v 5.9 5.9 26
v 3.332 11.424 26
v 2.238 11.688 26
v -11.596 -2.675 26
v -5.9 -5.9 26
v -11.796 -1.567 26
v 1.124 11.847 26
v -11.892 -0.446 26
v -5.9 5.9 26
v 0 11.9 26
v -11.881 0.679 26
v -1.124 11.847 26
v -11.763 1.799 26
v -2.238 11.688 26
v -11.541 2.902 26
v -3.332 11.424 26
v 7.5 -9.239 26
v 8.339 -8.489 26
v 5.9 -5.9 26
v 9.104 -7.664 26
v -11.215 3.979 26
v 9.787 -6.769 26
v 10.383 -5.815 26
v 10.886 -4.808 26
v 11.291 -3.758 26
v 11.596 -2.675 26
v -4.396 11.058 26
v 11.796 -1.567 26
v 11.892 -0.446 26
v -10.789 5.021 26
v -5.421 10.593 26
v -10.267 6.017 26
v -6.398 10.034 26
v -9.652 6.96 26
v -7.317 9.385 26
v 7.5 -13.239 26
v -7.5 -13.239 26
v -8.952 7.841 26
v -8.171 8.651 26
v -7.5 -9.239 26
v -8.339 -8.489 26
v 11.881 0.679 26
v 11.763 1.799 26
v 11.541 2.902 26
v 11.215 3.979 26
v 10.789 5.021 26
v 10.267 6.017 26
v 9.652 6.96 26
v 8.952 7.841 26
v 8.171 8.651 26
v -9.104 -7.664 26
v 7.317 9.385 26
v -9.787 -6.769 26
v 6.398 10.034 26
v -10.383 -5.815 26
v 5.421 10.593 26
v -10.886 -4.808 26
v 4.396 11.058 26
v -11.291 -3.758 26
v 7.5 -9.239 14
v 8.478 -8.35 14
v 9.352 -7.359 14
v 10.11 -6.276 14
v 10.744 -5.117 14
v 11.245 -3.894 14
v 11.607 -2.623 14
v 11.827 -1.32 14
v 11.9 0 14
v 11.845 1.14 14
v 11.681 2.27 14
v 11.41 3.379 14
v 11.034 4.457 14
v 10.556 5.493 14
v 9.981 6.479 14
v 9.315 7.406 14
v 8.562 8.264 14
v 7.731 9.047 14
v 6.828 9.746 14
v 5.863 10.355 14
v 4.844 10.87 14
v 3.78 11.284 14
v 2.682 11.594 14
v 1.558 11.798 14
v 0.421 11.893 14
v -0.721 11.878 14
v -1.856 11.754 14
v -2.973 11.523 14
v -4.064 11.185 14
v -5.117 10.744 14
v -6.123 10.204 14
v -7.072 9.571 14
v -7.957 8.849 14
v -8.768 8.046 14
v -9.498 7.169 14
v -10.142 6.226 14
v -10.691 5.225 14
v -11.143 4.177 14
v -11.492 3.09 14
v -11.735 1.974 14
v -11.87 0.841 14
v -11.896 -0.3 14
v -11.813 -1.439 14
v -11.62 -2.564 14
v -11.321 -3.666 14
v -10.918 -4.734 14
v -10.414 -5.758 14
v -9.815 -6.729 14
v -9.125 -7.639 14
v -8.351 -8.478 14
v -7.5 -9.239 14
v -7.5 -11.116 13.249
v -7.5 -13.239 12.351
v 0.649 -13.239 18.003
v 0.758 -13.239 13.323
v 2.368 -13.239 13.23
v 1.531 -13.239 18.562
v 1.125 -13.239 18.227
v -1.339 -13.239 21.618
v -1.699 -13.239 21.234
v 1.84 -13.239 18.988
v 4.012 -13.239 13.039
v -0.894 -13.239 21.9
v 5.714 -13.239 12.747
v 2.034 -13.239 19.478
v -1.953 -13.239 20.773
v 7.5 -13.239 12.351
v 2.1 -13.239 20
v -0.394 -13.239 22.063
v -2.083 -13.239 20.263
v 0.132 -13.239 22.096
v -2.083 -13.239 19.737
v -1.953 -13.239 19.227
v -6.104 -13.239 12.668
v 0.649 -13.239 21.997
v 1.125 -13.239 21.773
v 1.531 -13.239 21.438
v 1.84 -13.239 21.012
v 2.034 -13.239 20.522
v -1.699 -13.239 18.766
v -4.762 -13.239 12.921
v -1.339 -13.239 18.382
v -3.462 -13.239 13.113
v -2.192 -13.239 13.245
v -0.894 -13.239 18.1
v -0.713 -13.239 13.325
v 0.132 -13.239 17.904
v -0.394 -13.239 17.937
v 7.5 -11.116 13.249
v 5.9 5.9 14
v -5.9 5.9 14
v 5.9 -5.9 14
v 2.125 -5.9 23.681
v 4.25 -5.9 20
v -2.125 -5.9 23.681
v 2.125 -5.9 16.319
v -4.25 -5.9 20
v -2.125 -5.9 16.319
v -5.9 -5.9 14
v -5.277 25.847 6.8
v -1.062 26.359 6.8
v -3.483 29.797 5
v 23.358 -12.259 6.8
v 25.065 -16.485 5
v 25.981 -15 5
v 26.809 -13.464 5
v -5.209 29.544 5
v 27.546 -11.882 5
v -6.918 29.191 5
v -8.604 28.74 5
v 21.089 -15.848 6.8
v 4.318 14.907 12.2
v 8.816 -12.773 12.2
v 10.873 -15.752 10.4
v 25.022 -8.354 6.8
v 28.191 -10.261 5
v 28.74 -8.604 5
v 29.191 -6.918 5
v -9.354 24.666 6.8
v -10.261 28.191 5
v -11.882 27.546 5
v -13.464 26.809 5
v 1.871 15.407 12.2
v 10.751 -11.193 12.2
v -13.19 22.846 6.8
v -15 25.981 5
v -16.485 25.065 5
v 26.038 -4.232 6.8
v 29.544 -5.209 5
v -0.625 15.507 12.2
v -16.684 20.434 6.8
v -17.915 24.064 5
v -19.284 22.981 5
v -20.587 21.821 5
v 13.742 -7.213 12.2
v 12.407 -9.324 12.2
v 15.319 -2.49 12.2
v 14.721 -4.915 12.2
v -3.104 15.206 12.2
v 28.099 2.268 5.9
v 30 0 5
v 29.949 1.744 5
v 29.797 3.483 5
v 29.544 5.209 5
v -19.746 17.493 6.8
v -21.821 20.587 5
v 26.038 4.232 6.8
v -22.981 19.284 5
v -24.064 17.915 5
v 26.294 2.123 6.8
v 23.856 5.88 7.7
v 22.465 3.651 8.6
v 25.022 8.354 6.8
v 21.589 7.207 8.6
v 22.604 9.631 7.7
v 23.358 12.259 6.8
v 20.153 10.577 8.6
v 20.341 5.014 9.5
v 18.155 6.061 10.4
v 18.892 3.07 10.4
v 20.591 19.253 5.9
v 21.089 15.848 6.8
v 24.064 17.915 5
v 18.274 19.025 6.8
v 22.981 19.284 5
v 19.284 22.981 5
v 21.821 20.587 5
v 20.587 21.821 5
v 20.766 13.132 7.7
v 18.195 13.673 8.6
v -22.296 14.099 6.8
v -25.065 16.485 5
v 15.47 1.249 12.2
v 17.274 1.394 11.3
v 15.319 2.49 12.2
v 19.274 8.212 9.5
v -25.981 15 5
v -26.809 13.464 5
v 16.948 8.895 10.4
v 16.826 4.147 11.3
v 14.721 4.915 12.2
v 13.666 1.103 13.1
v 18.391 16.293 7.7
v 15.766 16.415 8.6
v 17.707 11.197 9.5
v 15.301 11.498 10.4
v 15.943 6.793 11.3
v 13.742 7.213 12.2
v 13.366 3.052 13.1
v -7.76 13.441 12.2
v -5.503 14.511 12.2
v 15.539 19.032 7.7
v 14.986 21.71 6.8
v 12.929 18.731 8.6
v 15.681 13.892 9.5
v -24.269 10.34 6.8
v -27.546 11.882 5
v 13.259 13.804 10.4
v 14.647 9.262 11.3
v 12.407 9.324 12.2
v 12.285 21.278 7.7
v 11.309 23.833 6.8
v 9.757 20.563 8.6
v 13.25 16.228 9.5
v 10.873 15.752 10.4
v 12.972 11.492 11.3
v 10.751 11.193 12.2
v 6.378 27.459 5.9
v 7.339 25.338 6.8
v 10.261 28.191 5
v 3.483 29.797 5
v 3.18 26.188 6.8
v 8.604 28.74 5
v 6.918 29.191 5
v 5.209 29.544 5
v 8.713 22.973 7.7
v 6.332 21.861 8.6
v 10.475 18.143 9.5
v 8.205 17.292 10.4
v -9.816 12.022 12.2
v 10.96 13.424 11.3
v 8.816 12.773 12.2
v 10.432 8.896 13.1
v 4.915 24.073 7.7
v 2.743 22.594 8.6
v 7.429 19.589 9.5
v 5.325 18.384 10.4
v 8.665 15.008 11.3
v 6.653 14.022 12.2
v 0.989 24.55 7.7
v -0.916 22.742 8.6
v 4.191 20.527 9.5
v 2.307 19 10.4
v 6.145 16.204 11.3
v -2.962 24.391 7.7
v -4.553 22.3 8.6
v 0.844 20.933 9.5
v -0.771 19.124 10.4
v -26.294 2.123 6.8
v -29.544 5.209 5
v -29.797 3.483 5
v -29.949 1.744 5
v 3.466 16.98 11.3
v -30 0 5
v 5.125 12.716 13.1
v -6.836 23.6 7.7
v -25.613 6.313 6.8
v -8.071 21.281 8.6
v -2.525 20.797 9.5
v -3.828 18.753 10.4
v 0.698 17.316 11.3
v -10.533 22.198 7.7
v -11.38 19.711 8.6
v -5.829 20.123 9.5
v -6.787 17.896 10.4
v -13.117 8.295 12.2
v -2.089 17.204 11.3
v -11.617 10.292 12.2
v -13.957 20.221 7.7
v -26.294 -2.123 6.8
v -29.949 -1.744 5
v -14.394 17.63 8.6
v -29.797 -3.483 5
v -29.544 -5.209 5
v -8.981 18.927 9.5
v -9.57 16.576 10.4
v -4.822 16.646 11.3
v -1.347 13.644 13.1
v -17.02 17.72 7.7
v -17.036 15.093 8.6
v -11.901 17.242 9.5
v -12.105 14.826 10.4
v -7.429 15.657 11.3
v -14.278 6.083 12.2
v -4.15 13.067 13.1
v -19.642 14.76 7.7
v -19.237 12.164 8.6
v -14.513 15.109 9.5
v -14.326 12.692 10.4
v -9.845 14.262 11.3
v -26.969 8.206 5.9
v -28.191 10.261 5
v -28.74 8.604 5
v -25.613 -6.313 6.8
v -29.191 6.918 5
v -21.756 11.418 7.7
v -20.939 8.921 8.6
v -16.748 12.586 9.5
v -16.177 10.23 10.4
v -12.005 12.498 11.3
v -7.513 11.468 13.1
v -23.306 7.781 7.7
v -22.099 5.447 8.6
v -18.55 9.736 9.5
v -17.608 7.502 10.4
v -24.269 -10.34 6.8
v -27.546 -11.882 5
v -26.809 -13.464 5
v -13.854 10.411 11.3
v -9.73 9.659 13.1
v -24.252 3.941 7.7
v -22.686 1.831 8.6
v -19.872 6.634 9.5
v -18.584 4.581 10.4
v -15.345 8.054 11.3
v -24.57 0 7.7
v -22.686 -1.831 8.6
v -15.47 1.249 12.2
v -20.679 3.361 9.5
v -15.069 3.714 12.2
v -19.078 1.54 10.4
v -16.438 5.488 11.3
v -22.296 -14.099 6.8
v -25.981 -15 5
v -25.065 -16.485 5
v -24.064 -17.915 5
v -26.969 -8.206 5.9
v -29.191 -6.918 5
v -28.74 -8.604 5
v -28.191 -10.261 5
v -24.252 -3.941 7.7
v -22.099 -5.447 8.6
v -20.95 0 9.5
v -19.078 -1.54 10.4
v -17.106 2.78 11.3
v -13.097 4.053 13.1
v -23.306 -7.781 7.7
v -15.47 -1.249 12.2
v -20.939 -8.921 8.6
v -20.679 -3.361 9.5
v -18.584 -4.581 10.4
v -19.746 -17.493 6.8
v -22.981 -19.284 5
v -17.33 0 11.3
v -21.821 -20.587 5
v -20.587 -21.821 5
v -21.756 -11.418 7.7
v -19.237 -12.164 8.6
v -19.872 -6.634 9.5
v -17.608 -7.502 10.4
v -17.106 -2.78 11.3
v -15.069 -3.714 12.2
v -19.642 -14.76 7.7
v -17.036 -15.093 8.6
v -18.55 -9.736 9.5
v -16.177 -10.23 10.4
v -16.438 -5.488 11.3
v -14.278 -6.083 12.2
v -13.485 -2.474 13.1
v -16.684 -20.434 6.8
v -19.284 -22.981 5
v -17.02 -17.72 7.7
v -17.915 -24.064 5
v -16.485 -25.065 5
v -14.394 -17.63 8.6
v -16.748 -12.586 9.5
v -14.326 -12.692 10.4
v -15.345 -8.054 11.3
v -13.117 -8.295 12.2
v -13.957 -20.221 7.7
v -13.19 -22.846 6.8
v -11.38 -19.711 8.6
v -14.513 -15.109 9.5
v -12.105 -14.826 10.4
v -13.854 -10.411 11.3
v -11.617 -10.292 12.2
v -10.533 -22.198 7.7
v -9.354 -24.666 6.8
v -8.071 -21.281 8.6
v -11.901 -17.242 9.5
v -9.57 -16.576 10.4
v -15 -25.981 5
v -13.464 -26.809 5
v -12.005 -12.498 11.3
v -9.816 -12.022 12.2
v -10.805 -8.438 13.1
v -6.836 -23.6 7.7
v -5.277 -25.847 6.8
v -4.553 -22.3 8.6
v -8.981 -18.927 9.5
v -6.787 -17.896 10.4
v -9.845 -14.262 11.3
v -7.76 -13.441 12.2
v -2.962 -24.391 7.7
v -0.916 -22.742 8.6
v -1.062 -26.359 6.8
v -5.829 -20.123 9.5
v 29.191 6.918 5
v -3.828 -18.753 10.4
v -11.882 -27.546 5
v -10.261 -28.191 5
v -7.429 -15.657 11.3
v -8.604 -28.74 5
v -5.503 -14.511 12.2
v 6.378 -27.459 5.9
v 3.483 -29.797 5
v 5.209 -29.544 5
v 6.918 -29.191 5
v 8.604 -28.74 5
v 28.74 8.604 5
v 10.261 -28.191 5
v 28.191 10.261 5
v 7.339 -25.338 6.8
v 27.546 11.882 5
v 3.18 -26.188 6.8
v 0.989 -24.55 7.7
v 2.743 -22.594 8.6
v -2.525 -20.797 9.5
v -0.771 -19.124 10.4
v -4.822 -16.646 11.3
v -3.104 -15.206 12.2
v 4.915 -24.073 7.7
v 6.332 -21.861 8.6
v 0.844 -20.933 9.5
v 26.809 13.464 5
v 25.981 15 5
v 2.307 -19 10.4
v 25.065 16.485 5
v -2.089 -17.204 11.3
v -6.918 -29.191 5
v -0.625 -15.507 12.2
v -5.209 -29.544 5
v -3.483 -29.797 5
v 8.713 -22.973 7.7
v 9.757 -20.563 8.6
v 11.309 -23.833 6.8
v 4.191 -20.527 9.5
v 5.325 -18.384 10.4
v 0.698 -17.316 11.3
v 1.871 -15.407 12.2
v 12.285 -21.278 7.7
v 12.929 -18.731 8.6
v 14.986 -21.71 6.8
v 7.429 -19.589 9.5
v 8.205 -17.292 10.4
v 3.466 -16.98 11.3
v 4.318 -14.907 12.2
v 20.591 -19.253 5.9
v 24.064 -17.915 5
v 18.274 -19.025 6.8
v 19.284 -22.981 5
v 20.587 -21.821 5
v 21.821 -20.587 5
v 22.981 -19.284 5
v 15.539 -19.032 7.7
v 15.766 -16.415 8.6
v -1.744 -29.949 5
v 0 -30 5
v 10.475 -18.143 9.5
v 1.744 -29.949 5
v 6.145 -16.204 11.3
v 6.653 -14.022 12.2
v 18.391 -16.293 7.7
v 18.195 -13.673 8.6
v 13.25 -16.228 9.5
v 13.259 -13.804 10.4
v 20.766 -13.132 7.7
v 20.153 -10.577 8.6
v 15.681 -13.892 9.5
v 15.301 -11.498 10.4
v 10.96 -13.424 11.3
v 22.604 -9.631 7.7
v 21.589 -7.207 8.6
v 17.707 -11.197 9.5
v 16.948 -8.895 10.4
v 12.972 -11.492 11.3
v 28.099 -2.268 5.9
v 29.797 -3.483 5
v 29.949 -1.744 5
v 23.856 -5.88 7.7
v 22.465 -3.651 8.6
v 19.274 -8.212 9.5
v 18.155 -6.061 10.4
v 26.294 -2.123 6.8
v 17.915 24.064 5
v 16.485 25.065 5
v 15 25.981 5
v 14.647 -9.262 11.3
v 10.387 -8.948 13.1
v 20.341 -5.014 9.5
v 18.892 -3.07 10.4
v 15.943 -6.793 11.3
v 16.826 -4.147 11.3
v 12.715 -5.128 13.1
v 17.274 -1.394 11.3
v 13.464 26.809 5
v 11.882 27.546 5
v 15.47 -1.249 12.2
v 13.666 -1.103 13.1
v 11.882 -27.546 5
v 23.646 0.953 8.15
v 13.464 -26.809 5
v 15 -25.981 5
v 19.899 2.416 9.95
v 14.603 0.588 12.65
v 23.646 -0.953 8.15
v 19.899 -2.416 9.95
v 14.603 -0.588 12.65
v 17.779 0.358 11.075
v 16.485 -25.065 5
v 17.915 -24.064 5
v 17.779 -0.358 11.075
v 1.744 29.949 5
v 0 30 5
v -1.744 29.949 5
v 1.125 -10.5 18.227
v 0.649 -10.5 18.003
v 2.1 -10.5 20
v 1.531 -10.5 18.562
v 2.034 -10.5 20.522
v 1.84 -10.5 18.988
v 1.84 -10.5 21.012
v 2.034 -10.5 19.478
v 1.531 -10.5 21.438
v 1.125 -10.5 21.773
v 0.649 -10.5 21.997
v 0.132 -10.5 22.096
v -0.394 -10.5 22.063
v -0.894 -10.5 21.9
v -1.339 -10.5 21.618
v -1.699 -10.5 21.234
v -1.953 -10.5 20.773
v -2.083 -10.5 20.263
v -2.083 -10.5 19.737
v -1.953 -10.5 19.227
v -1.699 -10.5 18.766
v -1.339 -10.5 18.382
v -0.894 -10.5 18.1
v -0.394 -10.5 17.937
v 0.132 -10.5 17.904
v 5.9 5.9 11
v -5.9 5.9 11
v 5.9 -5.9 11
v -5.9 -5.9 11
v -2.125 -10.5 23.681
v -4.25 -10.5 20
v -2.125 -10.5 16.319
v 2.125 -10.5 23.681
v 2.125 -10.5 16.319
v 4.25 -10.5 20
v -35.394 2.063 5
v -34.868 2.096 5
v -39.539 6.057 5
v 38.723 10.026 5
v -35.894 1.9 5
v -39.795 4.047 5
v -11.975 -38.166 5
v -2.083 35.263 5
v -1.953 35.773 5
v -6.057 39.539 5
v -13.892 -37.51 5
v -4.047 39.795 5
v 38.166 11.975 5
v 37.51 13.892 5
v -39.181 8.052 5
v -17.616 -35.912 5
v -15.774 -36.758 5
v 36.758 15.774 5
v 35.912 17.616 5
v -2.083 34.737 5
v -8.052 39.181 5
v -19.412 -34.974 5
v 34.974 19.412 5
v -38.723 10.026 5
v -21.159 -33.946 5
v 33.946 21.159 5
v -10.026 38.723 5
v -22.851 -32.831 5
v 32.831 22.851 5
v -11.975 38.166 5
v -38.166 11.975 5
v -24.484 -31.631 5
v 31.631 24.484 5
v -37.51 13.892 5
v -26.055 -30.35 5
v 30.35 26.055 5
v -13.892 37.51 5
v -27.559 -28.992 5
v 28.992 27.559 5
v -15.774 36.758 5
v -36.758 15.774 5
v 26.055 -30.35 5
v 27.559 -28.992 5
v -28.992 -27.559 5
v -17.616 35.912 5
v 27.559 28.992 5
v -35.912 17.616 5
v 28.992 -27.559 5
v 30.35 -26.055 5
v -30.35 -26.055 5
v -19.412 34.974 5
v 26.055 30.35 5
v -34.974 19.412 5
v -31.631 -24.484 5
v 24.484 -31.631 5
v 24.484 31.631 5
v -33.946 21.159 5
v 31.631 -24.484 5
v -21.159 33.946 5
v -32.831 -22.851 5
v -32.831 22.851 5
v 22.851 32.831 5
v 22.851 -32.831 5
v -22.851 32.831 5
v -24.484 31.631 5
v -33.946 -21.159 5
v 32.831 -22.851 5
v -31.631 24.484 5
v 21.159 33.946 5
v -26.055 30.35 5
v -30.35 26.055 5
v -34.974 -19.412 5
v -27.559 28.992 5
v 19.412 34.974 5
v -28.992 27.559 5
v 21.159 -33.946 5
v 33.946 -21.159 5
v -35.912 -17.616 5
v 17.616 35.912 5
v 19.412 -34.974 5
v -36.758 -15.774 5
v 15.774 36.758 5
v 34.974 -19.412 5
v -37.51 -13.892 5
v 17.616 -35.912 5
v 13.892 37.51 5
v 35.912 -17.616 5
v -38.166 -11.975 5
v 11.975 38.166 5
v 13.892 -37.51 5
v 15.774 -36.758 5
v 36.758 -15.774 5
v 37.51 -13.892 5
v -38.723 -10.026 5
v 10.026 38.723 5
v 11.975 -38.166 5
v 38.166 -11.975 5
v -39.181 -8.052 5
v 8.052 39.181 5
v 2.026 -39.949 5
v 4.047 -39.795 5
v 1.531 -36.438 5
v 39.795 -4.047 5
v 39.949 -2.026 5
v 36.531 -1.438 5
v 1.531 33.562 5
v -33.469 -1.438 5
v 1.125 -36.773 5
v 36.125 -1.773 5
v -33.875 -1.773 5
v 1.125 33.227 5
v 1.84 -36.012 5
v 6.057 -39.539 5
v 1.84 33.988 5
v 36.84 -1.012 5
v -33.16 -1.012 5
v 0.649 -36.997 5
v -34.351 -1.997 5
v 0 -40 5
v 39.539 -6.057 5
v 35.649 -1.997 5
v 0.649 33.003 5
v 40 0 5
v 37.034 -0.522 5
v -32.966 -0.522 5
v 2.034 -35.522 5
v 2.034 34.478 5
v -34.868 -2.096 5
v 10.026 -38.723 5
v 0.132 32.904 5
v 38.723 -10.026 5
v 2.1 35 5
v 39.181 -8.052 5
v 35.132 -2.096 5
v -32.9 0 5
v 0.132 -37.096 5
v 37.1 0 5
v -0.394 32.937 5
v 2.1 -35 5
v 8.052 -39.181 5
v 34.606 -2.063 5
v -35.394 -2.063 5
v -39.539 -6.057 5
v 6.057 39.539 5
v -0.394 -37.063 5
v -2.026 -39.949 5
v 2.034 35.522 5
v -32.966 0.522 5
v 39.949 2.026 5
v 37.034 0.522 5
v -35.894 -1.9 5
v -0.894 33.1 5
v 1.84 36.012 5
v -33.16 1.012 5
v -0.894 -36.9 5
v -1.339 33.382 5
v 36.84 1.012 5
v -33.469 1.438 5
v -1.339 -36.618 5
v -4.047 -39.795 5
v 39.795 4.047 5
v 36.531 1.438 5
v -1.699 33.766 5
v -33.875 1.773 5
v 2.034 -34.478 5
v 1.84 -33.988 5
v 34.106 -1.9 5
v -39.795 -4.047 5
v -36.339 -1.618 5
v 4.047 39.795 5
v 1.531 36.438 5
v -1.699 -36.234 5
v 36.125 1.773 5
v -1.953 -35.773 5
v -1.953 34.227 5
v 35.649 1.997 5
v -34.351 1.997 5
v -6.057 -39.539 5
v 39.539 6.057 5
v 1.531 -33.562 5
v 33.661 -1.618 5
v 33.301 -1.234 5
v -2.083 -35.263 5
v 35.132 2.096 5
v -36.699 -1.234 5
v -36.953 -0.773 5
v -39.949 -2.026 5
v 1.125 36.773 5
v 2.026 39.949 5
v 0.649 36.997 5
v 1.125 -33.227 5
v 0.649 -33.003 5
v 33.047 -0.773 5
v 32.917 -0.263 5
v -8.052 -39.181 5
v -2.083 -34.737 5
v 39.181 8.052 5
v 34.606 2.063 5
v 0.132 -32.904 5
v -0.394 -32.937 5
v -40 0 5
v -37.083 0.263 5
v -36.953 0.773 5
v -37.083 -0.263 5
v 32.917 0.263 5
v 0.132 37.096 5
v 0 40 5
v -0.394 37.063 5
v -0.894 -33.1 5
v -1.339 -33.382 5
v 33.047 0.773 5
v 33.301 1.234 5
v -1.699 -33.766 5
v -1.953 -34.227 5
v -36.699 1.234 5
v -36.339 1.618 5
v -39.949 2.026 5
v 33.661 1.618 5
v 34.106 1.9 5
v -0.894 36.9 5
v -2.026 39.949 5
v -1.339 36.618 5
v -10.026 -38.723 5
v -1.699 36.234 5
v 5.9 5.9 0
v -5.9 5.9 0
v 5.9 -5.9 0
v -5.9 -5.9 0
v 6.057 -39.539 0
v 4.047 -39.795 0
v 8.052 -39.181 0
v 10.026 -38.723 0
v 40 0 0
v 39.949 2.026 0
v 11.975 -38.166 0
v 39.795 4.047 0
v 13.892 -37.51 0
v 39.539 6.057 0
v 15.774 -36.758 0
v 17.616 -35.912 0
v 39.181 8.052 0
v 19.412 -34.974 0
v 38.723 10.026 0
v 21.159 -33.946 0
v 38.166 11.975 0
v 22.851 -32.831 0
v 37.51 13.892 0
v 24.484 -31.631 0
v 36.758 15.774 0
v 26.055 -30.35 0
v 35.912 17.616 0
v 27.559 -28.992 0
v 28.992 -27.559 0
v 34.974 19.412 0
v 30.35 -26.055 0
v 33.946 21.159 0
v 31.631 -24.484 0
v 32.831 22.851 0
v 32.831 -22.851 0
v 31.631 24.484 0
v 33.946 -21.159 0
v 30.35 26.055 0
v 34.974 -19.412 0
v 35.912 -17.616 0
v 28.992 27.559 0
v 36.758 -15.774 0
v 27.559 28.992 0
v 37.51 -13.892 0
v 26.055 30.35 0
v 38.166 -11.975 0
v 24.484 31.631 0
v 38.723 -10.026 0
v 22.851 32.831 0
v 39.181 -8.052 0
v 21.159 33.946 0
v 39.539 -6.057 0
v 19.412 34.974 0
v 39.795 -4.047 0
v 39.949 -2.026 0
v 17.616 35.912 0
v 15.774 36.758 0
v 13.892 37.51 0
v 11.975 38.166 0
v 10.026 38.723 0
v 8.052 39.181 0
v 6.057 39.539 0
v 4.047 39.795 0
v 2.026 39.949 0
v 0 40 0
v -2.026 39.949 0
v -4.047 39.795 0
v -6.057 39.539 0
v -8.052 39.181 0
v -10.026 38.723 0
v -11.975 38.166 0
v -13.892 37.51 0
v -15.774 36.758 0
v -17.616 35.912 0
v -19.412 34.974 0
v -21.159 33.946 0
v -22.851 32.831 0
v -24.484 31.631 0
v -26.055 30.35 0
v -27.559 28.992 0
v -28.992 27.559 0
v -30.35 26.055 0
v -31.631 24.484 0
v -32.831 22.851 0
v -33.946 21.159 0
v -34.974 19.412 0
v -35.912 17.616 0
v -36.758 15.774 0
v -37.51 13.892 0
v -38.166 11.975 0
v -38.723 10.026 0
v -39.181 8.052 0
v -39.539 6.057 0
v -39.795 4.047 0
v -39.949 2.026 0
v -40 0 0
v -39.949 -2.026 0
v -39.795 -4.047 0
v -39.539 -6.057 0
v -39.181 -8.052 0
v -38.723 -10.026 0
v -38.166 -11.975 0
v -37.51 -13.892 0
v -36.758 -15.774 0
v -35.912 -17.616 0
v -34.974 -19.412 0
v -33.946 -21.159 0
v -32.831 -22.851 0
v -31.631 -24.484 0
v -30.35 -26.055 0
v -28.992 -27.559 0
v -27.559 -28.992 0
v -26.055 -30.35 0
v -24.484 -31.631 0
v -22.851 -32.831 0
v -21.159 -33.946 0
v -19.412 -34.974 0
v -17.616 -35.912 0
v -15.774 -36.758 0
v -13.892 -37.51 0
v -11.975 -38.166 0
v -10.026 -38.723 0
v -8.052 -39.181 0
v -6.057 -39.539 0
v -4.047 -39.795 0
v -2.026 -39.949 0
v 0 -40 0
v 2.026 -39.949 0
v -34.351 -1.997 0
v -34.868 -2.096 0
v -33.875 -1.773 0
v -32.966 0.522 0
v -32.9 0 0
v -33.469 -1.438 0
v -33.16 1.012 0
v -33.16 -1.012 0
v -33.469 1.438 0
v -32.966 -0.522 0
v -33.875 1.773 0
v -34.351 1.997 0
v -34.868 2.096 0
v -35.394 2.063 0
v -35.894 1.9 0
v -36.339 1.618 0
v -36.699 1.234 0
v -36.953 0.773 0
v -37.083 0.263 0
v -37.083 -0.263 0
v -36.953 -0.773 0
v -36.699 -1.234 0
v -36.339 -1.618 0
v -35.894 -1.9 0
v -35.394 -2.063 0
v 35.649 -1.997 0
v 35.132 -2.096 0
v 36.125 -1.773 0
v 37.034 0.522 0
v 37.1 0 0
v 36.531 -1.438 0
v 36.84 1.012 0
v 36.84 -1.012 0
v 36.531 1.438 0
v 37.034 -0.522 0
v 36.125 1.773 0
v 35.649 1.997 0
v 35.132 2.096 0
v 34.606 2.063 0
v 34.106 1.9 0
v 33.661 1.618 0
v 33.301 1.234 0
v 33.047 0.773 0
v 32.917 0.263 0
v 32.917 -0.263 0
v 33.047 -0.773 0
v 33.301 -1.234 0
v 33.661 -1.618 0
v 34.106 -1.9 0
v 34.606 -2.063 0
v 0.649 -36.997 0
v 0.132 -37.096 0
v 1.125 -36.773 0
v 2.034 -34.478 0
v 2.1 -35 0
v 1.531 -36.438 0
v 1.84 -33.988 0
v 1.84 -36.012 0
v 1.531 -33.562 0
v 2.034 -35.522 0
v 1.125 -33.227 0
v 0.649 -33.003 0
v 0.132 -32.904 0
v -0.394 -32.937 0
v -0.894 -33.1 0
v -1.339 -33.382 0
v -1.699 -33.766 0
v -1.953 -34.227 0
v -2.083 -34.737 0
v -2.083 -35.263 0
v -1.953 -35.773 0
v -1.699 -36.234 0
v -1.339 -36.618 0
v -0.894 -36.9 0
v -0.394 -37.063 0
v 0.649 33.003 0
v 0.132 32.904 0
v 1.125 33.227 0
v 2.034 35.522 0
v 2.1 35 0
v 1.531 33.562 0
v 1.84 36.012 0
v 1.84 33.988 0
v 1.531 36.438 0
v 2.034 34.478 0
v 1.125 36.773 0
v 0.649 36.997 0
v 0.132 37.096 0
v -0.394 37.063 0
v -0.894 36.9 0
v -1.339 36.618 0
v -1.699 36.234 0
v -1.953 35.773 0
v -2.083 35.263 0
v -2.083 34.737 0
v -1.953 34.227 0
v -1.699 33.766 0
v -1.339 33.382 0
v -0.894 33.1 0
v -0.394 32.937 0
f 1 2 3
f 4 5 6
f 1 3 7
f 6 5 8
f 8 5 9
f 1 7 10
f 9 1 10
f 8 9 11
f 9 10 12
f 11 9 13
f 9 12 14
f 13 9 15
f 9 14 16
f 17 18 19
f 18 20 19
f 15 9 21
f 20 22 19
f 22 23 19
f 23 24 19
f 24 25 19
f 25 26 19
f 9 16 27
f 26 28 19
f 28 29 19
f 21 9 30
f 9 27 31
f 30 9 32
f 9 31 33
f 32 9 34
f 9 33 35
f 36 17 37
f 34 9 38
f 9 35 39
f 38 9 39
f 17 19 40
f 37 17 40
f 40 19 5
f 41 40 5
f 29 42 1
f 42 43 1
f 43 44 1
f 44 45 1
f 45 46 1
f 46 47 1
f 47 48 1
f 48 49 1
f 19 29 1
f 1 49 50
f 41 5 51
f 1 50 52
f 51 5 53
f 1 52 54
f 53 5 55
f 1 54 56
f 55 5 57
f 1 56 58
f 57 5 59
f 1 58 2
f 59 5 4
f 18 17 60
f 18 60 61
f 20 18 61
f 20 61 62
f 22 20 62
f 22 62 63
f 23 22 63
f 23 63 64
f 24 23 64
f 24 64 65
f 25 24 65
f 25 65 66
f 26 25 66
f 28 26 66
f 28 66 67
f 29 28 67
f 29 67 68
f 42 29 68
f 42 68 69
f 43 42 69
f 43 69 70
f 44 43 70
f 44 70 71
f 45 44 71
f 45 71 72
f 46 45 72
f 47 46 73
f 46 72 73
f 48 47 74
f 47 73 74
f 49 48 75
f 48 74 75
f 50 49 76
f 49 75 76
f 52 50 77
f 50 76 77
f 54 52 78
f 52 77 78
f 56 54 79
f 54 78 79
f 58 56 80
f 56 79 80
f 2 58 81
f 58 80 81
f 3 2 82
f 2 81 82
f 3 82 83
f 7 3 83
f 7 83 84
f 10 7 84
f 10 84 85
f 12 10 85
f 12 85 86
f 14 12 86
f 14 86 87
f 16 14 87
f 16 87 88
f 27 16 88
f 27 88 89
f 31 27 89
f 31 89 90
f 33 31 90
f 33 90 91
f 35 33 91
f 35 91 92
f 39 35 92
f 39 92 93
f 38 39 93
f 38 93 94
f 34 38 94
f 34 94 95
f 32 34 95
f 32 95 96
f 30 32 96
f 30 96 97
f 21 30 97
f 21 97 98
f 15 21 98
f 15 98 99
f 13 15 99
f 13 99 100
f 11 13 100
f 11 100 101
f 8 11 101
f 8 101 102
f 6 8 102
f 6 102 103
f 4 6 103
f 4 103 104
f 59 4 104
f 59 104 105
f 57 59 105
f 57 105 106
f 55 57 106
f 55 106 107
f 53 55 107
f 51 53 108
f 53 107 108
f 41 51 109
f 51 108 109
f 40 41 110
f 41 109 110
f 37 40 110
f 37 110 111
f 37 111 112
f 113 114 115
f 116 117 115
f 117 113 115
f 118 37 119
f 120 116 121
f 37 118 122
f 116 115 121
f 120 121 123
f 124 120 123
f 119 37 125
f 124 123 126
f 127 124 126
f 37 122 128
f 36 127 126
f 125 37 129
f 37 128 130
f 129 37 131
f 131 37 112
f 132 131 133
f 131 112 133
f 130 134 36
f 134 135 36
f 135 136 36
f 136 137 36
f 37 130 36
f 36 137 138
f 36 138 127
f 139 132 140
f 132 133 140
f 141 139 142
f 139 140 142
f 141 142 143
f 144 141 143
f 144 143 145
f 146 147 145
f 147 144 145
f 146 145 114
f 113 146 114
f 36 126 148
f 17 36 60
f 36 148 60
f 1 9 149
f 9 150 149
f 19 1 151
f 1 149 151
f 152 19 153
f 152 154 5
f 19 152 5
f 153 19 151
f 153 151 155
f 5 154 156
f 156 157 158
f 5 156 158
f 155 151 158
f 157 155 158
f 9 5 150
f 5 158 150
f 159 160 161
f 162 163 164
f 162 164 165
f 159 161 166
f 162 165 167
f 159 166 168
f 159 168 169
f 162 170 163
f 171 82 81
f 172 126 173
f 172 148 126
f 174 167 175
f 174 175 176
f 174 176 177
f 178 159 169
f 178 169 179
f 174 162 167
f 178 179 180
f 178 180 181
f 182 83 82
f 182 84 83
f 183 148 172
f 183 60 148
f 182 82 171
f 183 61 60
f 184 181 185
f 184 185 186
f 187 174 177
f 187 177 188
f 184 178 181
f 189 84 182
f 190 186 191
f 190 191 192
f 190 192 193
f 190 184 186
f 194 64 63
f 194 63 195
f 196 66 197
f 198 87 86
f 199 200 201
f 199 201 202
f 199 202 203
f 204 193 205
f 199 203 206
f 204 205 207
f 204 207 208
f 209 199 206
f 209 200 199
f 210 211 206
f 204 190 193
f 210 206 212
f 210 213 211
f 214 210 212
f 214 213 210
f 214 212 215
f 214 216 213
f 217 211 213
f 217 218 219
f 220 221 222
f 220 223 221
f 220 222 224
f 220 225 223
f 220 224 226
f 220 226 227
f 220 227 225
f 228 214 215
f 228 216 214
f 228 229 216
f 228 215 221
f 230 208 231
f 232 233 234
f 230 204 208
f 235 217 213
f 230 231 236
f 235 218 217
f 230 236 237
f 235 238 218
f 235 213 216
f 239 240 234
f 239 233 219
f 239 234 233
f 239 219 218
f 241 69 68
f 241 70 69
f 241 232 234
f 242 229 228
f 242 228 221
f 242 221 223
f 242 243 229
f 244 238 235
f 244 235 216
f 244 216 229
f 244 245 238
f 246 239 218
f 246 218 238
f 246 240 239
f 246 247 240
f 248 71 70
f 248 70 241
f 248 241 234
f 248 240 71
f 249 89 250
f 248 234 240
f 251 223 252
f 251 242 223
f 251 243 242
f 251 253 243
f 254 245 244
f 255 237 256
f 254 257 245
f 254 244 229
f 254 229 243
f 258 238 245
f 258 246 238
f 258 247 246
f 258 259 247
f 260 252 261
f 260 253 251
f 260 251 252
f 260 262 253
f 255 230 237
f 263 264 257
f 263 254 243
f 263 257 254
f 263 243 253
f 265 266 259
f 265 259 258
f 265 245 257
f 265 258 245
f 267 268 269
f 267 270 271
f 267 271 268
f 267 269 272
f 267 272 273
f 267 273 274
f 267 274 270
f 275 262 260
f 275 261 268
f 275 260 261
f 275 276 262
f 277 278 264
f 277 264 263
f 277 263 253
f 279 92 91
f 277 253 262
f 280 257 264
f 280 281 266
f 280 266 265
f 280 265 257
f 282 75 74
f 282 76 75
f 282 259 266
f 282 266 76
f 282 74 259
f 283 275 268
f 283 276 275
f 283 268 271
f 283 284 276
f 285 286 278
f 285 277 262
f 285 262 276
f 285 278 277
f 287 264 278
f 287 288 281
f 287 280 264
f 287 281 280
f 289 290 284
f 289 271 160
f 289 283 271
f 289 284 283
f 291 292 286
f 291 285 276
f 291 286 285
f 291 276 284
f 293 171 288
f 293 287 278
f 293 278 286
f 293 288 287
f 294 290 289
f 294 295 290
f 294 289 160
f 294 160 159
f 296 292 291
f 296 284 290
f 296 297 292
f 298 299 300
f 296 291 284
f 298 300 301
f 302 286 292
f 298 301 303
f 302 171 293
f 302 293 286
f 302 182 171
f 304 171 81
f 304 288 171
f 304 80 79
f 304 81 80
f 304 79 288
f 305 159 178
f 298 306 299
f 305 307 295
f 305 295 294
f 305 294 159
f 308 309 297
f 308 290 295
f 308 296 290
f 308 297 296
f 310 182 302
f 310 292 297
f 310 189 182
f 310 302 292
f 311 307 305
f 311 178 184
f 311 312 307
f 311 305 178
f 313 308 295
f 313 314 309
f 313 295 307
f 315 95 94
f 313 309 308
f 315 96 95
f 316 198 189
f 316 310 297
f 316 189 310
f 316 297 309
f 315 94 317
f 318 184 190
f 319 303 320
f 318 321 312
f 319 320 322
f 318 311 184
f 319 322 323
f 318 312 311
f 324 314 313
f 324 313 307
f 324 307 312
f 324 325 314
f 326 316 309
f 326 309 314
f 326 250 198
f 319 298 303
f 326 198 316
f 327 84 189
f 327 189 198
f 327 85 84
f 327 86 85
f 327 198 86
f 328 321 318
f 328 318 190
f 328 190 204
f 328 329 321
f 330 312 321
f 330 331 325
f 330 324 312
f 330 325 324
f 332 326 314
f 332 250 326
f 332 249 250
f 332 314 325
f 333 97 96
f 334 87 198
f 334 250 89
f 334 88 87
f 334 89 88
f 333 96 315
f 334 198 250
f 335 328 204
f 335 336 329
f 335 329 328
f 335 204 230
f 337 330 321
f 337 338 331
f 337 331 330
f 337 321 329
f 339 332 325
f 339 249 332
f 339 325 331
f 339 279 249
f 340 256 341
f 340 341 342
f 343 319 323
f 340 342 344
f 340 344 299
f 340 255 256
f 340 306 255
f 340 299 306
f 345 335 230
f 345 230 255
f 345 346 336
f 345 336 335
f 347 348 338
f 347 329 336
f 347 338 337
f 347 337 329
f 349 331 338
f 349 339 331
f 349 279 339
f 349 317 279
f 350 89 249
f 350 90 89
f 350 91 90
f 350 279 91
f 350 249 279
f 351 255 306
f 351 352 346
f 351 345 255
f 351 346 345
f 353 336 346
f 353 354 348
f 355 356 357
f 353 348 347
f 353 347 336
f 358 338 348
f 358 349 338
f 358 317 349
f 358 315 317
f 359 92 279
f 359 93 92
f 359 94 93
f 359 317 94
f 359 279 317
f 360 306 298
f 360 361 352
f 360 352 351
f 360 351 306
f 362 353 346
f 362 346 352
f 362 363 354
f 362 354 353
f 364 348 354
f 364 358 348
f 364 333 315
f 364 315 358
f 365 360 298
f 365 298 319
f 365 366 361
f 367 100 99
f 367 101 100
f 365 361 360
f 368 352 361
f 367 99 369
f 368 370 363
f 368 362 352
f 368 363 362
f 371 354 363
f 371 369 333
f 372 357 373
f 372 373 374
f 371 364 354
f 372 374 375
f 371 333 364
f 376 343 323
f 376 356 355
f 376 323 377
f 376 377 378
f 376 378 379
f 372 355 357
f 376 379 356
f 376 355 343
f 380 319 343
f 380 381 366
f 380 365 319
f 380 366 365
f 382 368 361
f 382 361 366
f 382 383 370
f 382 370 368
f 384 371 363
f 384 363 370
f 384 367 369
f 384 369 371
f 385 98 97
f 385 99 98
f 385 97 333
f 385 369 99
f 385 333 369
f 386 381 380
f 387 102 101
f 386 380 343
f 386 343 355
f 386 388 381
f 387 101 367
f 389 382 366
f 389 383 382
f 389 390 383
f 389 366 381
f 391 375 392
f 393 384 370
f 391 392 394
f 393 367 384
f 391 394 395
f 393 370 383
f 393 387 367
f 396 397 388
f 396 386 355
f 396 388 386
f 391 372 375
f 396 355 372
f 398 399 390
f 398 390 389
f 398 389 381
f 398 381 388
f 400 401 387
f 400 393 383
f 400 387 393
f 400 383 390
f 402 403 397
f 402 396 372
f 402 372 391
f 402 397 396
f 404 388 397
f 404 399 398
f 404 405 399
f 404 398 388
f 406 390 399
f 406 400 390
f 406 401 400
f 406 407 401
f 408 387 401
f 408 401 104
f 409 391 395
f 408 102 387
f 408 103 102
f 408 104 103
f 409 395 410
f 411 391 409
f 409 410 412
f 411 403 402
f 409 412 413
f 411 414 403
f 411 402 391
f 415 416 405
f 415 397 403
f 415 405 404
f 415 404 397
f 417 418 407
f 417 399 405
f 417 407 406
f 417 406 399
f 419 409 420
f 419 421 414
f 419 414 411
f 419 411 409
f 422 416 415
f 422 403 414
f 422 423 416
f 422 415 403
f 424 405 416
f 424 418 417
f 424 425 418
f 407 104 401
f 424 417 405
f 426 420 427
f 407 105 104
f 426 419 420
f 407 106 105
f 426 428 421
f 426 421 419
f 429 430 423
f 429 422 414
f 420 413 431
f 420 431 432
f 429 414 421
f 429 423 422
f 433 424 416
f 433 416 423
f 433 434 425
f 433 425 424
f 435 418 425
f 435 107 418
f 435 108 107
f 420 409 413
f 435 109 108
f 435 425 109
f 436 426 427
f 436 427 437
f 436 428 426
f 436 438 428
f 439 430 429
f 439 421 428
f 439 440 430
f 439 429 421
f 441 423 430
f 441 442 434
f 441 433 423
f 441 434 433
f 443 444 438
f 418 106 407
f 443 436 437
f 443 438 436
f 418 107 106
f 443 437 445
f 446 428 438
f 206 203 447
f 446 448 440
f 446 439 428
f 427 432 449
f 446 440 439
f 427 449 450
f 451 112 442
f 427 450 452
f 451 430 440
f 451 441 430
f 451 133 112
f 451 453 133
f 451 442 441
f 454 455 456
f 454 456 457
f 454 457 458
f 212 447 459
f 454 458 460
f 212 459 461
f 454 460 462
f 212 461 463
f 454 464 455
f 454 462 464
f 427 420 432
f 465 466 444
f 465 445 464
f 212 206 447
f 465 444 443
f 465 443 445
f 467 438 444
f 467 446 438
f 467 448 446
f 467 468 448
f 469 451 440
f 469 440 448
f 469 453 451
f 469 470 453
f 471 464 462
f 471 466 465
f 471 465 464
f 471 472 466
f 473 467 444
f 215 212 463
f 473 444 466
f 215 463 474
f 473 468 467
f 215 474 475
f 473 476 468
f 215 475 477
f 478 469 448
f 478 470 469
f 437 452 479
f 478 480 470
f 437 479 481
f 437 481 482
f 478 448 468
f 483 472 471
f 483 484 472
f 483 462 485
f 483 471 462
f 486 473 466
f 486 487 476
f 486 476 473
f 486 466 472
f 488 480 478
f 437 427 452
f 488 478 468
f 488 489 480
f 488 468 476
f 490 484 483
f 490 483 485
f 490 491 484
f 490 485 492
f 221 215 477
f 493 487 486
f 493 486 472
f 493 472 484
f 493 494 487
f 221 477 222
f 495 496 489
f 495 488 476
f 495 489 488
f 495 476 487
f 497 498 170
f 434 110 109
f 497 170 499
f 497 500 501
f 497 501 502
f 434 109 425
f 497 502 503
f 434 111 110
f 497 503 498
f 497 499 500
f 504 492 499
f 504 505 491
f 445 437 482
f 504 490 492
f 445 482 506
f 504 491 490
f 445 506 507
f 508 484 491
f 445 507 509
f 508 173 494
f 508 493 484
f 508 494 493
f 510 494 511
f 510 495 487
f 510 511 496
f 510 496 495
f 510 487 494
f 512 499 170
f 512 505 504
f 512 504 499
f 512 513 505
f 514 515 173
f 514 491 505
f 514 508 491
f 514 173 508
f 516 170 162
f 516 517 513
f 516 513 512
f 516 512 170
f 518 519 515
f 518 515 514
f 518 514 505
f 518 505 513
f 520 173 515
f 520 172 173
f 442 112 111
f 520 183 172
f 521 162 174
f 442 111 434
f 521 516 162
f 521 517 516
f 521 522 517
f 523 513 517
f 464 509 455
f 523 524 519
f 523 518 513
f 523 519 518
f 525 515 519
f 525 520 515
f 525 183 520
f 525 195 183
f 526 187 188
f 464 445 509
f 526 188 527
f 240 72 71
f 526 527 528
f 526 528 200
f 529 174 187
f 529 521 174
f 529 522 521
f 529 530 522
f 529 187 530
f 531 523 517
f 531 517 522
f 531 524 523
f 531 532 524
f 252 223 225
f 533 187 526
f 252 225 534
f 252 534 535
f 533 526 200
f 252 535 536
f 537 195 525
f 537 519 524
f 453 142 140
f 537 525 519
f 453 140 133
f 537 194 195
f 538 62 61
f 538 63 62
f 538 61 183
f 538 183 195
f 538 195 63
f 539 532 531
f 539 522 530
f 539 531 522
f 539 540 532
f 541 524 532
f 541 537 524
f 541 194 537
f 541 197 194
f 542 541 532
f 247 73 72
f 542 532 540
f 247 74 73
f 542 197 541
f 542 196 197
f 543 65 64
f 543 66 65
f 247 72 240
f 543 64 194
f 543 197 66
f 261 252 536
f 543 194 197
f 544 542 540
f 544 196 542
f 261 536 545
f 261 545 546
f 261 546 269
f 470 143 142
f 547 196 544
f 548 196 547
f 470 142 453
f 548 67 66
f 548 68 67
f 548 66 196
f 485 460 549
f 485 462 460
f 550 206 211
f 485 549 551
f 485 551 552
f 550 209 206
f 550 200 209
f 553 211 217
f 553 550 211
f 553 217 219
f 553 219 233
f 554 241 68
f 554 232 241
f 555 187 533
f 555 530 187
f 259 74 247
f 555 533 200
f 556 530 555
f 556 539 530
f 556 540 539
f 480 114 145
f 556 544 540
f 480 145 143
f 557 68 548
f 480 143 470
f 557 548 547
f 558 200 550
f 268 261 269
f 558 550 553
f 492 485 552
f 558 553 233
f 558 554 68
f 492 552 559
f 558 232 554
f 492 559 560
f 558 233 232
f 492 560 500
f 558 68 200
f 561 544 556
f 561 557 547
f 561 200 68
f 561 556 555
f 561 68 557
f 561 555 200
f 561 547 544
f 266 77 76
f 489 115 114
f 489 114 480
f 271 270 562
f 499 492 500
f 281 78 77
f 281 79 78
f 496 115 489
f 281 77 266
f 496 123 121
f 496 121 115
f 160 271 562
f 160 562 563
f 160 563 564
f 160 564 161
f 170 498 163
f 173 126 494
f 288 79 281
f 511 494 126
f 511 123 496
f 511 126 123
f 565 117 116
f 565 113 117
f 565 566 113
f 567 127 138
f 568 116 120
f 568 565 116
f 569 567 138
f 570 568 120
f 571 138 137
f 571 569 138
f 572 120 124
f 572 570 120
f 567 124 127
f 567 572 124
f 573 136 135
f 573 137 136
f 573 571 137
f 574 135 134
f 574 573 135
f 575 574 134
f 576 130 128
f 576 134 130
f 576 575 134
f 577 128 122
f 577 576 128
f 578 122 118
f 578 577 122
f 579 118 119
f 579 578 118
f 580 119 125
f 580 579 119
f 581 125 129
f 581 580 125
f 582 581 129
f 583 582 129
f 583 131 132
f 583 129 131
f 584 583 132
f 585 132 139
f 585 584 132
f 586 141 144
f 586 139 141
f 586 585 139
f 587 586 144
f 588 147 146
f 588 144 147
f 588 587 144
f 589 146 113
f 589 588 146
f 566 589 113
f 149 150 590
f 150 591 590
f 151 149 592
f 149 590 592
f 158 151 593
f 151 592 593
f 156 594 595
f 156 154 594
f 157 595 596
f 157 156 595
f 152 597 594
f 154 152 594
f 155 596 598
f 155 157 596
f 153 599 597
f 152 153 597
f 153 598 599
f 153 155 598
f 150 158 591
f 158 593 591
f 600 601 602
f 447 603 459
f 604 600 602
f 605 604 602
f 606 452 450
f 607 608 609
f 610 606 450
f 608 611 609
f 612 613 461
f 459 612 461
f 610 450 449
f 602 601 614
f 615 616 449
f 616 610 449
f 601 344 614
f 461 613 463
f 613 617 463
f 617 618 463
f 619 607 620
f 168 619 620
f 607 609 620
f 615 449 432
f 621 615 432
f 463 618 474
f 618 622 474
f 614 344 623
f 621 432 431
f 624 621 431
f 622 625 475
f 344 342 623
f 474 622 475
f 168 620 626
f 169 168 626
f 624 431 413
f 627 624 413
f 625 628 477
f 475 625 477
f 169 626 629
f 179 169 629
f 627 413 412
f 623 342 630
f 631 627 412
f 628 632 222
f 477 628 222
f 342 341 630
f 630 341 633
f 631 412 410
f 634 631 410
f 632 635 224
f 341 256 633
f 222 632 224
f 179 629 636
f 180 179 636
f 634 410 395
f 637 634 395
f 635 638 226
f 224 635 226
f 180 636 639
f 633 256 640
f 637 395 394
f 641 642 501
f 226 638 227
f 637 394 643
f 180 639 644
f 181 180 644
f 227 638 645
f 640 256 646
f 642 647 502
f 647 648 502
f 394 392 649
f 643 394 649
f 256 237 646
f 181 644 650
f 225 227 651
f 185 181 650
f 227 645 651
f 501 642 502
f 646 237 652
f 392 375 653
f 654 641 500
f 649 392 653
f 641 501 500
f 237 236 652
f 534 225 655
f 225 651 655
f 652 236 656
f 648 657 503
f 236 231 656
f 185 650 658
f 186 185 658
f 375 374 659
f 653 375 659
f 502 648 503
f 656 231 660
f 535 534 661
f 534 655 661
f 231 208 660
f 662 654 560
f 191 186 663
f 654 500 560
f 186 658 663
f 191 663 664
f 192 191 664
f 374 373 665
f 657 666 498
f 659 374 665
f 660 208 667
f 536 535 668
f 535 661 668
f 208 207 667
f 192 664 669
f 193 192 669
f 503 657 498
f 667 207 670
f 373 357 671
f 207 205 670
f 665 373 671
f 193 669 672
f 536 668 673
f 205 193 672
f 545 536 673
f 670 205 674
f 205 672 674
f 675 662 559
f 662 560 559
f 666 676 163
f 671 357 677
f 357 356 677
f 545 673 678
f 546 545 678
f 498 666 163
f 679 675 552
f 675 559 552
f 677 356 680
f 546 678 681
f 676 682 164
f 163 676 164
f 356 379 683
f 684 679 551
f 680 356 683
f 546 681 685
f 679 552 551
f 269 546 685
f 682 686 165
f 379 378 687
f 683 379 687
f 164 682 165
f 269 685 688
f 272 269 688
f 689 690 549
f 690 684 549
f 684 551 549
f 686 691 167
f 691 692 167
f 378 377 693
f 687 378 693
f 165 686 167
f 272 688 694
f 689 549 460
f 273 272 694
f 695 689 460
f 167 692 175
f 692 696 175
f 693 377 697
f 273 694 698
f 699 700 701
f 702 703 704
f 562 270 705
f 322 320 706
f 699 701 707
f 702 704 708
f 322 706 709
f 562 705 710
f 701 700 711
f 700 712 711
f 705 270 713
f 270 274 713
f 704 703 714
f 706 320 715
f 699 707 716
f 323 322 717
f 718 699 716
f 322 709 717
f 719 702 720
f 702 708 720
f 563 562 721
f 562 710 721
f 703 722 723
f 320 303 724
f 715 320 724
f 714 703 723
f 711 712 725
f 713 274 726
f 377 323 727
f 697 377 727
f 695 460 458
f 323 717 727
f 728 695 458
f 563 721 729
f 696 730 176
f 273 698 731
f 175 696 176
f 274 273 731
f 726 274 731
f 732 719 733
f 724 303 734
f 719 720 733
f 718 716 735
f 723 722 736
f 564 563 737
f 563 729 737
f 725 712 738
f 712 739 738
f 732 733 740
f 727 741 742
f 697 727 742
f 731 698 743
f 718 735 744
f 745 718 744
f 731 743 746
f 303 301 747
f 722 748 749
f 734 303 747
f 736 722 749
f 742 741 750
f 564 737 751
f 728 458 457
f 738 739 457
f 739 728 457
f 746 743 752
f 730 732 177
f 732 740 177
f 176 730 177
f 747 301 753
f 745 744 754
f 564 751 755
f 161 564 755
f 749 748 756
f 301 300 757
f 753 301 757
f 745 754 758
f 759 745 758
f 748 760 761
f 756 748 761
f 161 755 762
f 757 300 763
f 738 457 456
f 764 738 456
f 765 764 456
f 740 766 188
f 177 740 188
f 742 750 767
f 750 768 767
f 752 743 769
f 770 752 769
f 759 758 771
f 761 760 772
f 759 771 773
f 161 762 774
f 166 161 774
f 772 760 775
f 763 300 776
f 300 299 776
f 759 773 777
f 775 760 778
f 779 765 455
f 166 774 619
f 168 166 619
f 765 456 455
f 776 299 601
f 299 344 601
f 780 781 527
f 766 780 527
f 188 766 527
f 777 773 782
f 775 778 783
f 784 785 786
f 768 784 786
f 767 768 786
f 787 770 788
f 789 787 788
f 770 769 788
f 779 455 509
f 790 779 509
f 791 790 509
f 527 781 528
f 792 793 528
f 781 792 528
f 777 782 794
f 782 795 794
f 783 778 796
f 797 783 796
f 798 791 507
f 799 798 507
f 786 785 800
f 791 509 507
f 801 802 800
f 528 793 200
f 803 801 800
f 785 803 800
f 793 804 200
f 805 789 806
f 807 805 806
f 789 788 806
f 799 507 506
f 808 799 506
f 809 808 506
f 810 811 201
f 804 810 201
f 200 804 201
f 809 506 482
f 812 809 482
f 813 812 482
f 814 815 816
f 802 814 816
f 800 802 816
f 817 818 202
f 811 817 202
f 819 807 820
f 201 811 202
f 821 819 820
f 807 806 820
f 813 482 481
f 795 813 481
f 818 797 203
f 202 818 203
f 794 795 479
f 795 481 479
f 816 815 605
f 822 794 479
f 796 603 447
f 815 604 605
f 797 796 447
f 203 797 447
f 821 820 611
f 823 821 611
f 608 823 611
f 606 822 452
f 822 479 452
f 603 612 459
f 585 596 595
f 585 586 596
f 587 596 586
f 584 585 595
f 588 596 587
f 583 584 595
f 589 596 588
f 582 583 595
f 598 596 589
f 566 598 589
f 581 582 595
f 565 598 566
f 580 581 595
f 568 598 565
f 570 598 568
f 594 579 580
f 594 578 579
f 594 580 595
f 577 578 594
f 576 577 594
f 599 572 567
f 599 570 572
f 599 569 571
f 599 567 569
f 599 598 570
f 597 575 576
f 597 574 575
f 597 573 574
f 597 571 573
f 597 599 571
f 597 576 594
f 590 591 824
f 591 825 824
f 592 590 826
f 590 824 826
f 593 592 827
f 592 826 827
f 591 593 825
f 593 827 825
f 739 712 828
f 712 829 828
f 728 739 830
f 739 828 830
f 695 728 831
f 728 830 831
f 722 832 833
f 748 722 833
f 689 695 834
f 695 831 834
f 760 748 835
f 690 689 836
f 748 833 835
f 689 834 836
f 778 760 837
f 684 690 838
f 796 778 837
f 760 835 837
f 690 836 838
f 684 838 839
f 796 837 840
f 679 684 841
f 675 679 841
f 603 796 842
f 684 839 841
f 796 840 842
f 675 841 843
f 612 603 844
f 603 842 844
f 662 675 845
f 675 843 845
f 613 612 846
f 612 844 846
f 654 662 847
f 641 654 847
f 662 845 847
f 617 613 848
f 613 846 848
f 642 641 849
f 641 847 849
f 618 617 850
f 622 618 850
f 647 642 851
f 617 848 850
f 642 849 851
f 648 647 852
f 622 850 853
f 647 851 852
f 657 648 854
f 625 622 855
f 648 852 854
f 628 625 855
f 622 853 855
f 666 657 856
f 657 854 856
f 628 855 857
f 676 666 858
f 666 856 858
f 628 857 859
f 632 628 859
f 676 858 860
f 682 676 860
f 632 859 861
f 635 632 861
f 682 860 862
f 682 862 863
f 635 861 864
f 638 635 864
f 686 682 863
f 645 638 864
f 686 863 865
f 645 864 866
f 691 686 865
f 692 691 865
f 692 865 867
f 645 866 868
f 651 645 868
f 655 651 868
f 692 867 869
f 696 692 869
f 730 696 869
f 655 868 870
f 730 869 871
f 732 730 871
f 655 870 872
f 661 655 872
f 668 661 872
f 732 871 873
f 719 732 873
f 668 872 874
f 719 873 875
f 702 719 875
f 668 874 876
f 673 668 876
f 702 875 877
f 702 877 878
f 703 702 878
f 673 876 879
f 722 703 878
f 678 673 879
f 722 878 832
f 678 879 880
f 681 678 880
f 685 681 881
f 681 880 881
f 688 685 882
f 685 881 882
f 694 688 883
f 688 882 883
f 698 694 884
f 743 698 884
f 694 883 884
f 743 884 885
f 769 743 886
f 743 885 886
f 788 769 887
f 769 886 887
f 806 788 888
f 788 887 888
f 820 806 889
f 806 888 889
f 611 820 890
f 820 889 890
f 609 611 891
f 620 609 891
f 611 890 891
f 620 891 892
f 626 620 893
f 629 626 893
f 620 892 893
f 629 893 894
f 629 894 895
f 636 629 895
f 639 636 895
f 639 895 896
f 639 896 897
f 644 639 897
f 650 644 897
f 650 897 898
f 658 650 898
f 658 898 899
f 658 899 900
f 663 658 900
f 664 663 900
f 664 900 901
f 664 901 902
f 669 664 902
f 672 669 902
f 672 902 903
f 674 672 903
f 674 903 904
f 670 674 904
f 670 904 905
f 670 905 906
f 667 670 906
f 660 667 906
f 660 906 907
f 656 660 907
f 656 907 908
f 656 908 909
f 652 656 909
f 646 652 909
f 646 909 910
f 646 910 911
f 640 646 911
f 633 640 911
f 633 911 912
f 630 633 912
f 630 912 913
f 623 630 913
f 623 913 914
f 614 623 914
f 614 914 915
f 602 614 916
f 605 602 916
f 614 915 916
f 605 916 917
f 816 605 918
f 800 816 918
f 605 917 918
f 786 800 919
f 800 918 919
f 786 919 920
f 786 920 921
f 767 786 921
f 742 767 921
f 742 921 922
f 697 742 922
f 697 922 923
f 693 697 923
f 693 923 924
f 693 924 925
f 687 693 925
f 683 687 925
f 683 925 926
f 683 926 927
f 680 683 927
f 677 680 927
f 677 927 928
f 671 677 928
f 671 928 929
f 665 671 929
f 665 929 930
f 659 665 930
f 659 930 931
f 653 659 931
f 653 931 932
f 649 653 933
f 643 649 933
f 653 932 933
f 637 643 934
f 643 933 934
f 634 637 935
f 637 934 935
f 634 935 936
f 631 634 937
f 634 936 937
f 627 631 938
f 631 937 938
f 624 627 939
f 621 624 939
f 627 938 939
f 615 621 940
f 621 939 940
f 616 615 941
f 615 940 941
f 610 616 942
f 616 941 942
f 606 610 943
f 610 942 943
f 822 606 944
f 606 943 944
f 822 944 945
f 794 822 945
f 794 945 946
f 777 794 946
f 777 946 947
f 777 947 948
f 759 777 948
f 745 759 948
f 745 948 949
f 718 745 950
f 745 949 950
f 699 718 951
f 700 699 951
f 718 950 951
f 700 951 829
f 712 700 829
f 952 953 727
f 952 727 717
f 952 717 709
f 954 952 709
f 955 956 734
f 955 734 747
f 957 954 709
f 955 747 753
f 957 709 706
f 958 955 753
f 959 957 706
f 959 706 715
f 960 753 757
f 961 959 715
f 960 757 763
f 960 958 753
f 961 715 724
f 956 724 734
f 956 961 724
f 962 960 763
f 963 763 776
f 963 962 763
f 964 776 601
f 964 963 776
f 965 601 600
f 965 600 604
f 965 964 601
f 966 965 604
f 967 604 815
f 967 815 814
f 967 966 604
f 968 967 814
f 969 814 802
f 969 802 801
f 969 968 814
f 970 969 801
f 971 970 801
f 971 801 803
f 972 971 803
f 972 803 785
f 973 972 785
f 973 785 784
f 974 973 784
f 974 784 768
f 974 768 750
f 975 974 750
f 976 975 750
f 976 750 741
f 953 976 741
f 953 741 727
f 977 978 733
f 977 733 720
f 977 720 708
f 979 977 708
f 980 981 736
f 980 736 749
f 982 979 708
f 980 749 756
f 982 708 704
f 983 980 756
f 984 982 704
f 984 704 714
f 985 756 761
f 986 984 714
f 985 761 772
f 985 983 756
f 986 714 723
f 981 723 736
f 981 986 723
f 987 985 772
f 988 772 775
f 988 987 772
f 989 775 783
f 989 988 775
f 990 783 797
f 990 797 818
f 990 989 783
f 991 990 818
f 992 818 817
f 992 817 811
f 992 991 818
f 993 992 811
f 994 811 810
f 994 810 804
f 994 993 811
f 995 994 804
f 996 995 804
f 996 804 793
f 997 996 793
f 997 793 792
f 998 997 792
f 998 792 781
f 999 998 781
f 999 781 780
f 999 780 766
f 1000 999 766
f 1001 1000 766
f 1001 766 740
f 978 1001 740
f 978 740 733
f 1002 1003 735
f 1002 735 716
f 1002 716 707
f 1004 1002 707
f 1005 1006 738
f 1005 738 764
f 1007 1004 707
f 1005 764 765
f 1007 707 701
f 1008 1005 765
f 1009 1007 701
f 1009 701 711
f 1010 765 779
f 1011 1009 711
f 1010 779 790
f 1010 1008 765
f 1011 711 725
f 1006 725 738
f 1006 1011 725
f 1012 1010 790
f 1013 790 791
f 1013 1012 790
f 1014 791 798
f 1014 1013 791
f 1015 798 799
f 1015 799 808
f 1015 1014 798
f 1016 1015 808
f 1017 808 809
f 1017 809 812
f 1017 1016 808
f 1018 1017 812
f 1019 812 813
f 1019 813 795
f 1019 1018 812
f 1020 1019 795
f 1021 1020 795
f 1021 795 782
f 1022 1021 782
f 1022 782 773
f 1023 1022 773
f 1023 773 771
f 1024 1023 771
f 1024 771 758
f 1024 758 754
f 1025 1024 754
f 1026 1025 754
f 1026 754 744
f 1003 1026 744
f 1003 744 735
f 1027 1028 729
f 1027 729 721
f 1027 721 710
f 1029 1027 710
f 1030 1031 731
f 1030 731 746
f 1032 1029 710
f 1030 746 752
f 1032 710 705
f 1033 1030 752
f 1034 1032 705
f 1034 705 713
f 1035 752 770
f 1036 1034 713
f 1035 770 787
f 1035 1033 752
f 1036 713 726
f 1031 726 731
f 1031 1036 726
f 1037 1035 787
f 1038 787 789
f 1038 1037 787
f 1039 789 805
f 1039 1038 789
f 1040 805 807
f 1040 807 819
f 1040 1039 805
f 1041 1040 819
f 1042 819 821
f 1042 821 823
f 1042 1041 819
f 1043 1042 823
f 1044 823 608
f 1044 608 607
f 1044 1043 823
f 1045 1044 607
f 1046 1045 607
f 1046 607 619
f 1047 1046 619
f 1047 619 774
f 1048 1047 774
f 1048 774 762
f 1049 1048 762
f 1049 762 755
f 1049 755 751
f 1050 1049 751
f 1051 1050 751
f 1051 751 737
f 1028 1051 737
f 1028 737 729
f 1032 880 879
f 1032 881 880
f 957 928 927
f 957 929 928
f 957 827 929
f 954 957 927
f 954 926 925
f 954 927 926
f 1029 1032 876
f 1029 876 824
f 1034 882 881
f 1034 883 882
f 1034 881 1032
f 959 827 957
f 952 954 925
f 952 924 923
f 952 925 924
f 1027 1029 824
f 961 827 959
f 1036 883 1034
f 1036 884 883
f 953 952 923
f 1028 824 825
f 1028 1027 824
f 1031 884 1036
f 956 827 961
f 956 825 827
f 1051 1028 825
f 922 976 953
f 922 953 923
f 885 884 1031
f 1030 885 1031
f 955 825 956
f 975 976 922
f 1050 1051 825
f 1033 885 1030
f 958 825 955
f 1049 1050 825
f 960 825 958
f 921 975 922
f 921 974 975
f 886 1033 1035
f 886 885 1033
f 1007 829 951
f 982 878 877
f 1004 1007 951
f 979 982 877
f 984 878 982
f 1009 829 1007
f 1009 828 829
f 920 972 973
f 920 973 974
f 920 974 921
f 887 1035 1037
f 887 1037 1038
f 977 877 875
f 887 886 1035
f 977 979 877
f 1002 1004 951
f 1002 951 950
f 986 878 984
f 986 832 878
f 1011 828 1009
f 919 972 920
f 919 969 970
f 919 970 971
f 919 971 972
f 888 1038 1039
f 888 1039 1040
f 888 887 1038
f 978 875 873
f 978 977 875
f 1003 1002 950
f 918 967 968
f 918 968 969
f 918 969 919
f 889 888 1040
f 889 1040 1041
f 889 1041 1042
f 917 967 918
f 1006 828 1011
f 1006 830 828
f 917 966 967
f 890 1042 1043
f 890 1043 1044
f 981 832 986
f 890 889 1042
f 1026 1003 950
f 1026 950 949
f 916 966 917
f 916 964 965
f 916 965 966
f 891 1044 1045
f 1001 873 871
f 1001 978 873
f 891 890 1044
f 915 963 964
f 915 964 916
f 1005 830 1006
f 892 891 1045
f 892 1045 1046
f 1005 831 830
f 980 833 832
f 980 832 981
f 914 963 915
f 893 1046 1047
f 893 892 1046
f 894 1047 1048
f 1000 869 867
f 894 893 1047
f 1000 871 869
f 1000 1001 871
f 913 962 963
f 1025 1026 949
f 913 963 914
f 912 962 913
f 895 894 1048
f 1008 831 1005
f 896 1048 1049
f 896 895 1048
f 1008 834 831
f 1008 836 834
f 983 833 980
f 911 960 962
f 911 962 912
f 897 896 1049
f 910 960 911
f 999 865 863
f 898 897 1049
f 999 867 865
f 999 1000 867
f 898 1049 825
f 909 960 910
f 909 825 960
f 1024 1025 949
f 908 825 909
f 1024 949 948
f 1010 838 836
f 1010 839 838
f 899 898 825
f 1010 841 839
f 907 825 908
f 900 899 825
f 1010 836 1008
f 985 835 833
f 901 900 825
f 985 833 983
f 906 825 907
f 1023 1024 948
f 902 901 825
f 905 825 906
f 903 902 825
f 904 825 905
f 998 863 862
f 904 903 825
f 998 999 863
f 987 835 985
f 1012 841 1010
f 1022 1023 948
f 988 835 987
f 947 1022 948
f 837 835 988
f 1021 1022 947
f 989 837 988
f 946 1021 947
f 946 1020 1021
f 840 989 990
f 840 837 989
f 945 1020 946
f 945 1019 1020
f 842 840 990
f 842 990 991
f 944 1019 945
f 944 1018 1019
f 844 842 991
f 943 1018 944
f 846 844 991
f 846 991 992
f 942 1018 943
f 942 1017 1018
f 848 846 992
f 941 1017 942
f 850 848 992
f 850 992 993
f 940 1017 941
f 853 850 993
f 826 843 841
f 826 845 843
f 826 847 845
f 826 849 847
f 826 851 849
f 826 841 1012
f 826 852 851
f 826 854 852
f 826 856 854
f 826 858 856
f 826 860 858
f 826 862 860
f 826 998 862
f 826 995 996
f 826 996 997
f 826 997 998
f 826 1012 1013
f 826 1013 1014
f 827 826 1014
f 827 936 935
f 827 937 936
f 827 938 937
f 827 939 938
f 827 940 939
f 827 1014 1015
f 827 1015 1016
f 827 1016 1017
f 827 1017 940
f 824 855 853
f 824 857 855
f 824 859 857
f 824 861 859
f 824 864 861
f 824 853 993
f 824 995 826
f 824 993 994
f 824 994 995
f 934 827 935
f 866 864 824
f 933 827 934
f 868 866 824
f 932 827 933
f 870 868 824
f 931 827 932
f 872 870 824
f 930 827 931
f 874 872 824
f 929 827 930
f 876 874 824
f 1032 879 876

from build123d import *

# Parameters (mm, degrees)
SKETCH006_W   = 11.8
SKETCH006_H   = 11.8
PAD006_DEPTH  = 30
SKETCH001_R   = 40
SKETCH001_R_2 = 2.1
PAD001_DEPTH  = 5
PAD004_DEPTH  = 10.5
SKETCH005_R   = 2.1
PAD005_DEPTH  = 20
SKETCH_W      = 11.8
SKETCH_H      = 11.8
PAD_DEPTH     = 15


with BuildPart() as pad006:
    # Sketch006 → Pad006 (new body)
    with BuildSketch(Plane.XY):
        Rectangle(SKETCH006_W, SKETCH006_H)
    extrude(amount=PAD006_DEPTH)


with BuildPart() as pad001:
    # Sketch001 → Pad001 (new body)
    with BuildSketch(Plane.XY):
        Circle(SKETCH001_R)
        with Locations((0, 35)):
            Circle(SKETCH001_R_2, mode=Mode.SUBTRACT)
        with Locations((-35, 0)):
            Circle(SKETCH001_R_2, mode=Mode.SUBTRACT)
        with Locations((35, 0)):
            Circle(SKETCH001_R_2, mode=Mode.SUBTRACT)
        with Locations((0, -35)):
            Circle(SKETCH001_R_2, mode=Mode.SUBTRACT)
    extrude(amount=PAD001_DEPTH)


with BuildPart() as vis:
    # Cone → Cone (revolve)
    with BuildSketch(Plane(origin=(0, 0, 5), x_dir=(1, 0, 0), z_dir=(0, -1, 0))):
        Polygon((0, 0), (30, 0), (11.9, 9), (0, 9), align=None)
    revolve(axis=Axis((0, 0, 5), (0, 0, 1)))

    # Fusion001: union Pad001
    add(pad001.part)

    # Cut001: cut Pad006
    add(pad006.part, mode=Mode.SUBTRACT)


with BuildPart() as pad004:
    # Sketch004 → Pad004 (new body)
    with BuildSketch(Plane.XZ):
        Polygon((4.25, 24), (2.125, 27.680608), (-2.125, 27.680608), (-4.25, 24), (-2.125, 20.319392), (2.125, 20.319392), align=None)
    extrude(amount=PAD004_DEPTH)


with BuildPart() as screw_hole:
    # Sketch005 → Pad005 (new body)
    with BuildSketch(Plane.XZ):
        with Locations((0, 24)):
            Circle(SKETCH005_R)
    extrude(amount=PAD005_DEPTH)

    # Fusion: union Pad004
    add(pad004.part)


with BuildPart() as mobile:
    # Sketch → Pad (new body)
    with BuildSketch(Plane.XY.offset(15)):
        with BuildLine():
            ThreePointArc((7.5, -9.239048), (0, 11.9), (-7.5, -9.239048))
            Line((-7.5, -9.239048), (-7.5, -13.239048))
            Line((-7.5, -13.239048), (7.5, -13.239048))
            Line((7.5, -13.239048), (7.5, -9.239048))
        make_face()
        Rectangle(SKETCH_W, SKETCH_H, mode=Mode.SUBTRACT)
    extrude(amount=PAD_DEPTH)

    # Cut: cut screw_hole
    add(screw_hole.part, mode=Mode.SUBTRACT)


with BuildPart() as mobile_1:
    # Cut placement: moved
    add(mobile.part.moved(Location((0, 0, -4))))

    # Fusion002: union vis
    add(vis.part)


solid = mobile_1.part
